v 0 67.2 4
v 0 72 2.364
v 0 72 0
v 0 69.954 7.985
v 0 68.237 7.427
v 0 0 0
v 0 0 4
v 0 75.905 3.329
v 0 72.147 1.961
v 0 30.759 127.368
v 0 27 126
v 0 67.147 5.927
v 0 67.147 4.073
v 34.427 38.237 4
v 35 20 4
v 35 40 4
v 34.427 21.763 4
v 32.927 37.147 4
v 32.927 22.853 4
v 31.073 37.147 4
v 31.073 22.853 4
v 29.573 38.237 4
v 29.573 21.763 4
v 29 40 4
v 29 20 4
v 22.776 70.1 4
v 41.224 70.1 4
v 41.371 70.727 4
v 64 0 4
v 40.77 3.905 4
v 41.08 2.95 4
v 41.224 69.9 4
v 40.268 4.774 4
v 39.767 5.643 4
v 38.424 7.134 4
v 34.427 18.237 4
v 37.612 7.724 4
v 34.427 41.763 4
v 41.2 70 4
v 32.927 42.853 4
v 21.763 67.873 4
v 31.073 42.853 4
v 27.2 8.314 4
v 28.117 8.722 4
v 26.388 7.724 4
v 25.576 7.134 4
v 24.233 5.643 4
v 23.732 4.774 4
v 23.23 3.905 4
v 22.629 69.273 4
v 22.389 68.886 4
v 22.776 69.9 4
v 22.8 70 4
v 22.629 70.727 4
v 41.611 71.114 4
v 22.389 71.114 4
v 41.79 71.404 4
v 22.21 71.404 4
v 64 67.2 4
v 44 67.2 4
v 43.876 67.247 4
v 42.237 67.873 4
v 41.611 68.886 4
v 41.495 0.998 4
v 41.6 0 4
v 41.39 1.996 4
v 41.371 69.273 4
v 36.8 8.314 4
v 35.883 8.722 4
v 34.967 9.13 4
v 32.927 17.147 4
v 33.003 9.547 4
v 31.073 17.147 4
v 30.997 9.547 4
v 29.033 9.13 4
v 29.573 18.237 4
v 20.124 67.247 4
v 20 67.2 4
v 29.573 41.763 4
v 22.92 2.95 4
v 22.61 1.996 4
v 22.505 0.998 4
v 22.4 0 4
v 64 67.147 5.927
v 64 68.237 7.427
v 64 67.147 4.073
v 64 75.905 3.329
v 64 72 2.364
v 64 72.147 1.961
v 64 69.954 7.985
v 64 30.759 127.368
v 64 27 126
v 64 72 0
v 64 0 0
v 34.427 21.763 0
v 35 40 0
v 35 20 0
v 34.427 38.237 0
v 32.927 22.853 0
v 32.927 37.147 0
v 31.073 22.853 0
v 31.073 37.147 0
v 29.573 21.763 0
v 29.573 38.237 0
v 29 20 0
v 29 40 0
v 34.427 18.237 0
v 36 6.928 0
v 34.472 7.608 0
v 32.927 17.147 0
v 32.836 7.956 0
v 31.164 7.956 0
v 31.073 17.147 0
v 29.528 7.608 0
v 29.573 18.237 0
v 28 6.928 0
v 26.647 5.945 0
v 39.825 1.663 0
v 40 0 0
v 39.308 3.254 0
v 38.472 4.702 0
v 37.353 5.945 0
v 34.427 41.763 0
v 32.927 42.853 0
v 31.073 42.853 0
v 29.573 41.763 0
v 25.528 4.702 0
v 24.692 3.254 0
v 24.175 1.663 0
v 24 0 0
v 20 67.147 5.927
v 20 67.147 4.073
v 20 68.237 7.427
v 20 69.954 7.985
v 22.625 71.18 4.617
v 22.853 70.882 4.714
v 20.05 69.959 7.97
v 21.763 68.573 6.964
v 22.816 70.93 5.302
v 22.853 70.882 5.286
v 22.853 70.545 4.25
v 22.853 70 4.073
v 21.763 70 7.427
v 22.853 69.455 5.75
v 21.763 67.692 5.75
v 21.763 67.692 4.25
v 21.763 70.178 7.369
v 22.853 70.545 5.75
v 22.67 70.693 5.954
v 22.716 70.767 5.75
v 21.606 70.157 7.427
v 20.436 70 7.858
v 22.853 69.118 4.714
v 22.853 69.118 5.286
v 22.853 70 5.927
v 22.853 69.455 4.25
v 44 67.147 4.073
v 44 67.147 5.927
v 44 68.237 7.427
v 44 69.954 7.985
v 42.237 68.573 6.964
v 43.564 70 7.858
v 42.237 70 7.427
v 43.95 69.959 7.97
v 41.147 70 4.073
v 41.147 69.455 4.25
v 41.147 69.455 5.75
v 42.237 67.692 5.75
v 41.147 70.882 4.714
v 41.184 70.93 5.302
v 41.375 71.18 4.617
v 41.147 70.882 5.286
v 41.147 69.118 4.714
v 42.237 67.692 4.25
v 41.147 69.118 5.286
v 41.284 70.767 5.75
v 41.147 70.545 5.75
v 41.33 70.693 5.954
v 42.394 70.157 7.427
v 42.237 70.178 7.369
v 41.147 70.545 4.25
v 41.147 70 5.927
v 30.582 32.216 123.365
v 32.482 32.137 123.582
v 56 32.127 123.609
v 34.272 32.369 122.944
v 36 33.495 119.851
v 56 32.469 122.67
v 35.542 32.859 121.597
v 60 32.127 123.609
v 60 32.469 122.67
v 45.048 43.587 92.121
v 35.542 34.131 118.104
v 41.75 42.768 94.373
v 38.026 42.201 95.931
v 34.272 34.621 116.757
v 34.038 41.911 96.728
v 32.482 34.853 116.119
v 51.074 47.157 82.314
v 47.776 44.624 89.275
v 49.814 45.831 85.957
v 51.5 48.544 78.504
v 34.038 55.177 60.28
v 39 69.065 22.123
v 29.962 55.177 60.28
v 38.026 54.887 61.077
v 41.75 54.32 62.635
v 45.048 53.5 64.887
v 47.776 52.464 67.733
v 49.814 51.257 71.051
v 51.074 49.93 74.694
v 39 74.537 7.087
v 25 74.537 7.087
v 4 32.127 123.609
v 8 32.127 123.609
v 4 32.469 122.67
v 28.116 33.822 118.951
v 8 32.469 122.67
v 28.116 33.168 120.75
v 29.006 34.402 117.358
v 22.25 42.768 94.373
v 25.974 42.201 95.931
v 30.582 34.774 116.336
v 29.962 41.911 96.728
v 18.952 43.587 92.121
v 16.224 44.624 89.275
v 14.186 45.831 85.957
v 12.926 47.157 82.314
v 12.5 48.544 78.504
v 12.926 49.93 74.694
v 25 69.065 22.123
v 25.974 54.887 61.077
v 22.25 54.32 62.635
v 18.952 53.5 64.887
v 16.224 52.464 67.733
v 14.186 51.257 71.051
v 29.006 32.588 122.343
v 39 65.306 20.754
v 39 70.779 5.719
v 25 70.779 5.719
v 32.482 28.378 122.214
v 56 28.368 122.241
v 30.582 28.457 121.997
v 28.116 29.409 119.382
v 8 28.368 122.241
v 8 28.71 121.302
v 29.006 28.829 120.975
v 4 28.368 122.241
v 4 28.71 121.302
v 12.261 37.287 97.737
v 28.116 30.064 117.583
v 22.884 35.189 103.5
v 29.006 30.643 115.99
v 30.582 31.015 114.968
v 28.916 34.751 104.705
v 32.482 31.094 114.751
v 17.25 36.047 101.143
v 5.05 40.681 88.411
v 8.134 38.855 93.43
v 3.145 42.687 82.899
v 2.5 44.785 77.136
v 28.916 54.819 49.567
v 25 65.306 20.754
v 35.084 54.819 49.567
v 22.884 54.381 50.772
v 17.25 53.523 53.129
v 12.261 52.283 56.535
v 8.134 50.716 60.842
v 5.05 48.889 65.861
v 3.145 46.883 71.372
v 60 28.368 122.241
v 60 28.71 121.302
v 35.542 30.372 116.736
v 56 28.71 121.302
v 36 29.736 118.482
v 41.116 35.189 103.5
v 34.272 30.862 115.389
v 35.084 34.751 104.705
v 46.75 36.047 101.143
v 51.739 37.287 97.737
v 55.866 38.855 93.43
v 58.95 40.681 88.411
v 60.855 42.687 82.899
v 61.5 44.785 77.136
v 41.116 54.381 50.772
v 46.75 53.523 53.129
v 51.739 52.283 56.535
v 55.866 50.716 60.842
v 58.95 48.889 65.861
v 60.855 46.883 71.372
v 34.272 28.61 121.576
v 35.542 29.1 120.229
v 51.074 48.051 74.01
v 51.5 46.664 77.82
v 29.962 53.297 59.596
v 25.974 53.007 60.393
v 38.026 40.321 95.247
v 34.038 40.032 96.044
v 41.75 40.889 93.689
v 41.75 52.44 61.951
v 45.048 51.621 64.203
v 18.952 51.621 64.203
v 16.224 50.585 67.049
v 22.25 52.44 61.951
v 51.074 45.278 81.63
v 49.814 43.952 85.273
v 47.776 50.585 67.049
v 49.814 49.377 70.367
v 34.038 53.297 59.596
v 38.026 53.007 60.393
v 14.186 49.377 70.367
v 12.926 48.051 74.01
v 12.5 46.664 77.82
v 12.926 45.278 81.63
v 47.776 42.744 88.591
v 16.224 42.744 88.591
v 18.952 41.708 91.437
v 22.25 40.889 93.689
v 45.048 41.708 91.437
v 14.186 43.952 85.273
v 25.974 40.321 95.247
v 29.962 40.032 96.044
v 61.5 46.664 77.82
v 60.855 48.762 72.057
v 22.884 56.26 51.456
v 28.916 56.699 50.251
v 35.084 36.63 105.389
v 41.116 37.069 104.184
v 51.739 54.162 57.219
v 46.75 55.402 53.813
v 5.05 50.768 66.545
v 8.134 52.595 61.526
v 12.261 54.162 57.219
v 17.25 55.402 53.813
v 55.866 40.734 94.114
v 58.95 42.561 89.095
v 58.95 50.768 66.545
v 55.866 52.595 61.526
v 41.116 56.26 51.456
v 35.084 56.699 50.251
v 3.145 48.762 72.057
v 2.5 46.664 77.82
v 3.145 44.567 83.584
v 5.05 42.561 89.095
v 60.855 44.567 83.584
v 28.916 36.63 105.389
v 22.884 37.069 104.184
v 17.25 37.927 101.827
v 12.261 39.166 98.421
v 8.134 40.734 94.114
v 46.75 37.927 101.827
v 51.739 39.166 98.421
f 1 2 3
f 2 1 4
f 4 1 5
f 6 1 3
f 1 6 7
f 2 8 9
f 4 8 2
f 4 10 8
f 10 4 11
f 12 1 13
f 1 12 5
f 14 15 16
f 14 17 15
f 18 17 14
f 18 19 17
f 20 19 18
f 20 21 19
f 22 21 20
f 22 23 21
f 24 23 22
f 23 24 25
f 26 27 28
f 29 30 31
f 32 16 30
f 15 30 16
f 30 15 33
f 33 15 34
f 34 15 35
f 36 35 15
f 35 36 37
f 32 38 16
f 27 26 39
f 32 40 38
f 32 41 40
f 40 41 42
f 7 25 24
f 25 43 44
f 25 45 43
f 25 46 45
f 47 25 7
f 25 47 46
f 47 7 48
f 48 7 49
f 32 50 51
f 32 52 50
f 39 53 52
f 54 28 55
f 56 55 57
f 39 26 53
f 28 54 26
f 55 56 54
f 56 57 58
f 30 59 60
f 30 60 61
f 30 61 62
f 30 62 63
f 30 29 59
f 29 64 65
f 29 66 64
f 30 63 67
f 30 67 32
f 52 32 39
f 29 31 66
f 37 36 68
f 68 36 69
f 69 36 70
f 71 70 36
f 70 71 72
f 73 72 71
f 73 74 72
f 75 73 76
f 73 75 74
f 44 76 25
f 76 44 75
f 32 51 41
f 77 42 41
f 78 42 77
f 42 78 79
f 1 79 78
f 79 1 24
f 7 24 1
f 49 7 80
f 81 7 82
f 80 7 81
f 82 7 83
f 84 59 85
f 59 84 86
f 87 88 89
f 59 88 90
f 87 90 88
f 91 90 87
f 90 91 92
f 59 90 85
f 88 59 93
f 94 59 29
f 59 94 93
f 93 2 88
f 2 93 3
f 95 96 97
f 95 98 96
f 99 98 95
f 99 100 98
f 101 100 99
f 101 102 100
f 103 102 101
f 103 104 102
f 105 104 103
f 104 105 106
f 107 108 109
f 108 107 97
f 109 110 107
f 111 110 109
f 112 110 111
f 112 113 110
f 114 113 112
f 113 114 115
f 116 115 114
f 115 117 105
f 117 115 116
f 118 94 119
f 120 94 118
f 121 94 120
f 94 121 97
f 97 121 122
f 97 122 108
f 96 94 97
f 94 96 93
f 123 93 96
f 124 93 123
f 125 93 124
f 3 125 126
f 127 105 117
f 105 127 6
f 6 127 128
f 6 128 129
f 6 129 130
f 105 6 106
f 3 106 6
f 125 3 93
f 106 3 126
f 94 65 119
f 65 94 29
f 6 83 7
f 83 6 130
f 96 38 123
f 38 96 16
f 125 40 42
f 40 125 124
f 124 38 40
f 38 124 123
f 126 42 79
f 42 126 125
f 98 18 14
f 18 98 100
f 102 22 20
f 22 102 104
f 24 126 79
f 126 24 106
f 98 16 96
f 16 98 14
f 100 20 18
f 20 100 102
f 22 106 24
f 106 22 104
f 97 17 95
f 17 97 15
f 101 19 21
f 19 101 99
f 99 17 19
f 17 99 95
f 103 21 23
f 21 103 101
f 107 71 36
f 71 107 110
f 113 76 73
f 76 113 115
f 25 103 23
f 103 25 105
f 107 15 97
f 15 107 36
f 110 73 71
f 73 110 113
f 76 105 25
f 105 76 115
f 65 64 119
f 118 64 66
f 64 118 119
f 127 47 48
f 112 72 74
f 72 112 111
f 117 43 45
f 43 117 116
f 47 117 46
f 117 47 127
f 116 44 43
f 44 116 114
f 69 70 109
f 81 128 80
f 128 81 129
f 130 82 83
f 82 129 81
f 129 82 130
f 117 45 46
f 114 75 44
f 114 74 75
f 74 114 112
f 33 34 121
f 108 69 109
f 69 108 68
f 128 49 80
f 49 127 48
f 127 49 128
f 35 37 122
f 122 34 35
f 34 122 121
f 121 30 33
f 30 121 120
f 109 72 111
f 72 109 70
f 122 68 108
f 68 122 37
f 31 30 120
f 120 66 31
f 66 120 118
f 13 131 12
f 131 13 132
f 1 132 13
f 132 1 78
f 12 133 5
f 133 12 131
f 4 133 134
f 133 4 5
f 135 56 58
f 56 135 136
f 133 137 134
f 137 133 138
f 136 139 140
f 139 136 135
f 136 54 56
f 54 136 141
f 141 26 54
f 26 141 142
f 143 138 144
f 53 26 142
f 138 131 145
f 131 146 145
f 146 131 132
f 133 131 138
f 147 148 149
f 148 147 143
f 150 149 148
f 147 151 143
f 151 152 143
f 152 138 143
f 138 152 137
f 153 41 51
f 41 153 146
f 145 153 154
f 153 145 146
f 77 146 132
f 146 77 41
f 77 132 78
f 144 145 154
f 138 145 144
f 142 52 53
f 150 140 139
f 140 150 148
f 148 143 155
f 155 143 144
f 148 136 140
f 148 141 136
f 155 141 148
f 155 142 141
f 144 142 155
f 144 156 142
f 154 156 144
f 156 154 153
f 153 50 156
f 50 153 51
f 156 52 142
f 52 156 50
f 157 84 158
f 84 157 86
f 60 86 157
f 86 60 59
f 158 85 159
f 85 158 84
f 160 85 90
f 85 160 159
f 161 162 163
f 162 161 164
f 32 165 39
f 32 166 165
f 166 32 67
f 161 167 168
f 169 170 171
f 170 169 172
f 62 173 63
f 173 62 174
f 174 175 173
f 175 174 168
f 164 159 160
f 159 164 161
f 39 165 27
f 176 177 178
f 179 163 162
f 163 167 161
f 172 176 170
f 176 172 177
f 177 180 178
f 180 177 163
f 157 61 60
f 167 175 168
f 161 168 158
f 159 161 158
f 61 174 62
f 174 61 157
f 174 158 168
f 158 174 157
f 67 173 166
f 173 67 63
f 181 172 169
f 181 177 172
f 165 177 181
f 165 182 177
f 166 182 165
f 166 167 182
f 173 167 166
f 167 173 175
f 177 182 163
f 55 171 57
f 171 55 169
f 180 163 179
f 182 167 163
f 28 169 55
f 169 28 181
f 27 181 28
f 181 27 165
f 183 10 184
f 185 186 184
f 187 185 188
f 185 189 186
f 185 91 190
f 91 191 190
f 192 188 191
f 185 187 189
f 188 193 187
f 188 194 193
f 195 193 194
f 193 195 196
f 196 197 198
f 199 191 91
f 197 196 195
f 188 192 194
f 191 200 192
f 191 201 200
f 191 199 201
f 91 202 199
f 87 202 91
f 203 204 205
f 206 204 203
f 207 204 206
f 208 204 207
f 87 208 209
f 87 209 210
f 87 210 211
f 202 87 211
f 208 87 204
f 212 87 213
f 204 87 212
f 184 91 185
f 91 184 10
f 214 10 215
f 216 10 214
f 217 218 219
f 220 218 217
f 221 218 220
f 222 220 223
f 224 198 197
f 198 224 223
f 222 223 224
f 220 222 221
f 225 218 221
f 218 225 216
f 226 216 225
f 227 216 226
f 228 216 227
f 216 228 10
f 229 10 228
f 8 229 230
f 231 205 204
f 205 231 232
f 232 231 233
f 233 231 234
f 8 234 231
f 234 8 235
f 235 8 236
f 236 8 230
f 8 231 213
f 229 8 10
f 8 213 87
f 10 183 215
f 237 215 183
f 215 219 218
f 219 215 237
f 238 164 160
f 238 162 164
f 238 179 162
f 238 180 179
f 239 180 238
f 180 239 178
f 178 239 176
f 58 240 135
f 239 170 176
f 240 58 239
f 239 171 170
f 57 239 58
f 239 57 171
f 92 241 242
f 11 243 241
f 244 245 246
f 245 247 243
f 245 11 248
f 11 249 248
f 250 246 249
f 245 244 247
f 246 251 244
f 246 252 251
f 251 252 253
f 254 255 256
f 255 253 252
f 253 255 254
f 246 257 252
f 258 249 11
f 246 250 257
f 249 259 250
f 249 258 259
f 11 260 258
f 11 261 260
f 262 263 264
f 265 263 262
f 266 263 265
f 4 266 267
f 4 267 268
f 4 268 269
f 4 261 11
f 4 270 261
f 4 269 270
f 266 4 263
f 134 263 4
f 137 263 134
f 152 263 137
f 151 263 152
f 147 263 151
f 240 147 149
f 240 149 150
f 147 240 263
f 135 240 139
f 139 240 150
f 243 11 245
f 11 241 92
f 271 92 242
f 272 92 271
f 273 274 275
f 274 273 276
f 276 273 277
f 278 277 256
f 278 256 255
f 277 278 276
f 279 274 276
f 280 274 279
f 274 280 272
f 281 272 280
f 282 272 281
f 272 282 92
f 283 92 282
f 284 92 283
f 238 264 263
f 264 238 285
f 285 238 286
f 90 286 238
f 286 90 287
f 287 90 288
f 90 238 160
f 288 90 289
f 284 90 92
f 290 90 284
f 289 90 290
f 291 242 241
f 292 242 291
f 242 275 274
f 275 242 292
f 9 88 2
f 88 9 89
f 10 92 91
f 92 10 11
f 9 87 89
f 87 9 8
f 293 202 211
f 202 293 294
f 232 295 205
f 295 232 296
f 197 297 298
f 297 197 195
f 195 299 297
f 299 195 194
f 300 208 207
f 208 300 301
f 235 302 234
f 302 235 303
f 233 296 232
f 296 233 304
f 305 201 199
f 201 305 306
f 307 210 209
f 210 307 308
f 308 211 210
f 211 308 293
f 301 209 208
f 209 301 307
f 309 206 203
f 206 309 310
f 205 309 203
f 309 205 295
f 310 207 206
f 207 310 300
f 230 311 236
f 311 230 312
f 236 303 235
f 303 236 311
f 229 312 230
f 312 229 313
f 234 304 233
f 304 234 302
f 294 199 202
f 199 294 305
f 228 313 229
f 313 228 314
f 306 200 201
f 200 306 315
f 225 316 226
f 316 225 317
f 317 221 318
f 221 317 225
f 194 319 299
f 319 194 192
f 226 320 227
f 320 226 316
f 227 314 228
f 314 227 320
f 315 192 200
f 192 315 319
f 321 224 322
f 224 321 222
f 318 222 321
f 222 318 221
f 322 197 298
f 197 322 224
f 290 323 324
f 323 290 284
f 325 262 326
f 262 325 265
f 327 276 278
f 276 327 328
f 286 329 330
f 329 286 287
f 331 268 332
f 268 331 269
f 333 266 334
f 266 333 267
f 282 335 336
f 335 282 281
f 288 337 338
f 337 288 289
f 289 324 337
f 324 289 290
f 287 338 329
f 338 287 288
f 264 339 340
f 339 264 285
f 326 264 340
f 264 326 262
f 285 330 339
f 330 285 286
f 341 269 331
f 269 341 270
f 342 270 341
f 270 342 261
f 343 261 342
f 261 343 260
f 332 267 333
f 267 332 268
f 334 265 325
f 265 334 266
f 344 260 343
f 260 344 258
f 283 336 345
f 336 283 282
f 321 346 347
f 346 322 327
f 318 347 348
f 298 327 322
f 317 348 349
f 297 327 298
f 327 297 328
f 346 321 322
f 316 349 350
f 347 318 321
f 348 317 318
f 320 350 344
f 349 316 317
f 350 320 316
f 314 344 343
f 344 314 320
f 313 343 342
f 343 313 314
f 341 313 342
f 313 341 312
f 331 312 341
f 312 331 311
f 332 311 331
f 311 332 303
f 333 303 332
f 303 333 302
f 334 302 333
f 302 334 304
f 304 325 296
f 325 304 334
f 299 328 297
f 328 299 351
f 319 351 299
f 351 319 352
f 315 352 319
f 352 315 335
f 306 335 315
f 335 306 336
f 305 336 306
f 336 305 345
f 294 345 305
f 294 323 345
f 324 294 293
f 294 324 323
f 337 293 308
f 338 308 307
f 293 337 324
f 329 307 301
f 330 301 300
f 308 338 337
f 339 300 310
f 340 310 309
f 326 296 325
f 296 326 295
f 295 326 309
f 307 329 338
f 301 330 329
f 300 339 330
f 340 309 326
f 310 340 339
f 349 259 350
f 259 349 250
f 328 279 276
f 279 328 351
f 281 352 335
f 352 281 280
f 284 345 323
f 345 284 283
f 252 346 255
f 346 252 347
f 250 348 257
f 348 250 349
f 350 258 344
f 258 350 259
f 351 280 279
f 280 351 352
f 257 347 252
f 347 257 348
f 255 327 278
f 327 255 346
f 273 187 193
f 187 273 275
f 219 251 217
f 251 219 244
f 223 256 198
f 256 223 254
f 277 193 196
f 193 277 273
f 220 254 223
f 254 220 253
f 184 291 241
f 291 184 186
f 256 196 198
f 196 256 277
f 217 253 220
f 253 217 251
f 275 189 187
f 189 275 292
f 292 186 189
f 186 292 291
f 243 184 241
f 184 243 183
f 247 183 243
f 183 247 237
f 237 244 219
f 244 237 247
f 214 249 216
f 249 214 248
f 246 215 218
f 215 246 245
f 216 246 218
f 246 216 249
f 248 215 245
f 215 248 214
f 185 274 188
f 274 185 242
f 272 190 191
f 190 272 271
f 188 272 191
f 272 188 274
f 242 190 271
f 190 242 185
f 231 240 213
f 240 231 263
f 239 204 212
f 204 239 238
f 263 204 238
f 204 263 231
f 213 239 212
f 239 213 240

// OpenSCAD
/* [Dimensions] */
// Base Length
LEN_BASE = 60;// [30:60]
// Base width
WIDTH = 60;//[40:120]
// Thickness of Base and Back
THICK = 4; //[3:6]
// height of Back
HEIGHT = 120; //[120:120]
// Enable Base
ENABLE_BASE = true; //[false:true]

// -----------------------------
// Define Modules
// -----------------------------

module frame(width,depth, height, thickness){
    difference(){
cube([width+4,depth+12,thickness]);//Base
translate([width/2+2,depth/2-8,0])cylinder(h= 10, r= 19.5);//Socket hole small
translate([width/2+2,depth/2-8,-2])cylinder(h= 4, r= 29.5);//Socket hole large
translate([width/2+2,8,0])cylinder(h= 10, r= 4);//Top hanger hole
//translate([0,depth/2-3,0])cube([30,7,thickness]); //Right cable cut out
translate([4,4,0])cube([4,1,thickness]); //Right hole
translate([width-04,4,0])cube([4,1,thickness]); //Left hole   
translate([width/2-5,depth-8,0])cube([14,16,thickness]);//Lower cable hole
    }
    
//translate([0,0-thickness,-12])difference(){
//cube([width+4,thickness,16]);//Base
//translate([width/2+2,0,0])rotate([270,0,0])cylinder(h= 10, r= (width/3));//Socket hole small
//    }
}

module stand(width,depth, height, thickness){
    difference(){
cube([width+4,depth+12,thickness]);//Base
translate([width/2+2,depth/2+10,0])cylinder(h= 10, r= 3);
translate([width/2+2,depth/2-10,0])cylinder(h= 10, r= 3);
translate([width/2+2,0,0])cylinder(h= 10, r1= 08, r2=12);
    }}



// -----------------------------
// Put Components together
// -----------------------------

if (ENABLE_BASE == true) {
translate([0,60-LEN_BASE,0])stand(WIDTH,LEN_BASE,0,THICK);

translate([0,70,5])rotate([0,90,0])cylinder(h=(WIDTH-20)/2,r=3);//Support Right 
translate([(WIDTH-20)/2,70,5])rotate([0,90,0])sphere(r=3);//Support Right 
translate([(WIDTH)/2+14,70,5])rotate([0,90,0])cylinder(h=(WIDTH-20)/2,r=3);//Support Left
translate([(WIDTH)/2+14,70,5])rotate([0,90,0])sphere(r=3);//Support Left
}
translate([0,60*0.45,HEIGHT+6])rotate([290,0,0])frame(WIDTH,HEIGHT,0,THICK);
